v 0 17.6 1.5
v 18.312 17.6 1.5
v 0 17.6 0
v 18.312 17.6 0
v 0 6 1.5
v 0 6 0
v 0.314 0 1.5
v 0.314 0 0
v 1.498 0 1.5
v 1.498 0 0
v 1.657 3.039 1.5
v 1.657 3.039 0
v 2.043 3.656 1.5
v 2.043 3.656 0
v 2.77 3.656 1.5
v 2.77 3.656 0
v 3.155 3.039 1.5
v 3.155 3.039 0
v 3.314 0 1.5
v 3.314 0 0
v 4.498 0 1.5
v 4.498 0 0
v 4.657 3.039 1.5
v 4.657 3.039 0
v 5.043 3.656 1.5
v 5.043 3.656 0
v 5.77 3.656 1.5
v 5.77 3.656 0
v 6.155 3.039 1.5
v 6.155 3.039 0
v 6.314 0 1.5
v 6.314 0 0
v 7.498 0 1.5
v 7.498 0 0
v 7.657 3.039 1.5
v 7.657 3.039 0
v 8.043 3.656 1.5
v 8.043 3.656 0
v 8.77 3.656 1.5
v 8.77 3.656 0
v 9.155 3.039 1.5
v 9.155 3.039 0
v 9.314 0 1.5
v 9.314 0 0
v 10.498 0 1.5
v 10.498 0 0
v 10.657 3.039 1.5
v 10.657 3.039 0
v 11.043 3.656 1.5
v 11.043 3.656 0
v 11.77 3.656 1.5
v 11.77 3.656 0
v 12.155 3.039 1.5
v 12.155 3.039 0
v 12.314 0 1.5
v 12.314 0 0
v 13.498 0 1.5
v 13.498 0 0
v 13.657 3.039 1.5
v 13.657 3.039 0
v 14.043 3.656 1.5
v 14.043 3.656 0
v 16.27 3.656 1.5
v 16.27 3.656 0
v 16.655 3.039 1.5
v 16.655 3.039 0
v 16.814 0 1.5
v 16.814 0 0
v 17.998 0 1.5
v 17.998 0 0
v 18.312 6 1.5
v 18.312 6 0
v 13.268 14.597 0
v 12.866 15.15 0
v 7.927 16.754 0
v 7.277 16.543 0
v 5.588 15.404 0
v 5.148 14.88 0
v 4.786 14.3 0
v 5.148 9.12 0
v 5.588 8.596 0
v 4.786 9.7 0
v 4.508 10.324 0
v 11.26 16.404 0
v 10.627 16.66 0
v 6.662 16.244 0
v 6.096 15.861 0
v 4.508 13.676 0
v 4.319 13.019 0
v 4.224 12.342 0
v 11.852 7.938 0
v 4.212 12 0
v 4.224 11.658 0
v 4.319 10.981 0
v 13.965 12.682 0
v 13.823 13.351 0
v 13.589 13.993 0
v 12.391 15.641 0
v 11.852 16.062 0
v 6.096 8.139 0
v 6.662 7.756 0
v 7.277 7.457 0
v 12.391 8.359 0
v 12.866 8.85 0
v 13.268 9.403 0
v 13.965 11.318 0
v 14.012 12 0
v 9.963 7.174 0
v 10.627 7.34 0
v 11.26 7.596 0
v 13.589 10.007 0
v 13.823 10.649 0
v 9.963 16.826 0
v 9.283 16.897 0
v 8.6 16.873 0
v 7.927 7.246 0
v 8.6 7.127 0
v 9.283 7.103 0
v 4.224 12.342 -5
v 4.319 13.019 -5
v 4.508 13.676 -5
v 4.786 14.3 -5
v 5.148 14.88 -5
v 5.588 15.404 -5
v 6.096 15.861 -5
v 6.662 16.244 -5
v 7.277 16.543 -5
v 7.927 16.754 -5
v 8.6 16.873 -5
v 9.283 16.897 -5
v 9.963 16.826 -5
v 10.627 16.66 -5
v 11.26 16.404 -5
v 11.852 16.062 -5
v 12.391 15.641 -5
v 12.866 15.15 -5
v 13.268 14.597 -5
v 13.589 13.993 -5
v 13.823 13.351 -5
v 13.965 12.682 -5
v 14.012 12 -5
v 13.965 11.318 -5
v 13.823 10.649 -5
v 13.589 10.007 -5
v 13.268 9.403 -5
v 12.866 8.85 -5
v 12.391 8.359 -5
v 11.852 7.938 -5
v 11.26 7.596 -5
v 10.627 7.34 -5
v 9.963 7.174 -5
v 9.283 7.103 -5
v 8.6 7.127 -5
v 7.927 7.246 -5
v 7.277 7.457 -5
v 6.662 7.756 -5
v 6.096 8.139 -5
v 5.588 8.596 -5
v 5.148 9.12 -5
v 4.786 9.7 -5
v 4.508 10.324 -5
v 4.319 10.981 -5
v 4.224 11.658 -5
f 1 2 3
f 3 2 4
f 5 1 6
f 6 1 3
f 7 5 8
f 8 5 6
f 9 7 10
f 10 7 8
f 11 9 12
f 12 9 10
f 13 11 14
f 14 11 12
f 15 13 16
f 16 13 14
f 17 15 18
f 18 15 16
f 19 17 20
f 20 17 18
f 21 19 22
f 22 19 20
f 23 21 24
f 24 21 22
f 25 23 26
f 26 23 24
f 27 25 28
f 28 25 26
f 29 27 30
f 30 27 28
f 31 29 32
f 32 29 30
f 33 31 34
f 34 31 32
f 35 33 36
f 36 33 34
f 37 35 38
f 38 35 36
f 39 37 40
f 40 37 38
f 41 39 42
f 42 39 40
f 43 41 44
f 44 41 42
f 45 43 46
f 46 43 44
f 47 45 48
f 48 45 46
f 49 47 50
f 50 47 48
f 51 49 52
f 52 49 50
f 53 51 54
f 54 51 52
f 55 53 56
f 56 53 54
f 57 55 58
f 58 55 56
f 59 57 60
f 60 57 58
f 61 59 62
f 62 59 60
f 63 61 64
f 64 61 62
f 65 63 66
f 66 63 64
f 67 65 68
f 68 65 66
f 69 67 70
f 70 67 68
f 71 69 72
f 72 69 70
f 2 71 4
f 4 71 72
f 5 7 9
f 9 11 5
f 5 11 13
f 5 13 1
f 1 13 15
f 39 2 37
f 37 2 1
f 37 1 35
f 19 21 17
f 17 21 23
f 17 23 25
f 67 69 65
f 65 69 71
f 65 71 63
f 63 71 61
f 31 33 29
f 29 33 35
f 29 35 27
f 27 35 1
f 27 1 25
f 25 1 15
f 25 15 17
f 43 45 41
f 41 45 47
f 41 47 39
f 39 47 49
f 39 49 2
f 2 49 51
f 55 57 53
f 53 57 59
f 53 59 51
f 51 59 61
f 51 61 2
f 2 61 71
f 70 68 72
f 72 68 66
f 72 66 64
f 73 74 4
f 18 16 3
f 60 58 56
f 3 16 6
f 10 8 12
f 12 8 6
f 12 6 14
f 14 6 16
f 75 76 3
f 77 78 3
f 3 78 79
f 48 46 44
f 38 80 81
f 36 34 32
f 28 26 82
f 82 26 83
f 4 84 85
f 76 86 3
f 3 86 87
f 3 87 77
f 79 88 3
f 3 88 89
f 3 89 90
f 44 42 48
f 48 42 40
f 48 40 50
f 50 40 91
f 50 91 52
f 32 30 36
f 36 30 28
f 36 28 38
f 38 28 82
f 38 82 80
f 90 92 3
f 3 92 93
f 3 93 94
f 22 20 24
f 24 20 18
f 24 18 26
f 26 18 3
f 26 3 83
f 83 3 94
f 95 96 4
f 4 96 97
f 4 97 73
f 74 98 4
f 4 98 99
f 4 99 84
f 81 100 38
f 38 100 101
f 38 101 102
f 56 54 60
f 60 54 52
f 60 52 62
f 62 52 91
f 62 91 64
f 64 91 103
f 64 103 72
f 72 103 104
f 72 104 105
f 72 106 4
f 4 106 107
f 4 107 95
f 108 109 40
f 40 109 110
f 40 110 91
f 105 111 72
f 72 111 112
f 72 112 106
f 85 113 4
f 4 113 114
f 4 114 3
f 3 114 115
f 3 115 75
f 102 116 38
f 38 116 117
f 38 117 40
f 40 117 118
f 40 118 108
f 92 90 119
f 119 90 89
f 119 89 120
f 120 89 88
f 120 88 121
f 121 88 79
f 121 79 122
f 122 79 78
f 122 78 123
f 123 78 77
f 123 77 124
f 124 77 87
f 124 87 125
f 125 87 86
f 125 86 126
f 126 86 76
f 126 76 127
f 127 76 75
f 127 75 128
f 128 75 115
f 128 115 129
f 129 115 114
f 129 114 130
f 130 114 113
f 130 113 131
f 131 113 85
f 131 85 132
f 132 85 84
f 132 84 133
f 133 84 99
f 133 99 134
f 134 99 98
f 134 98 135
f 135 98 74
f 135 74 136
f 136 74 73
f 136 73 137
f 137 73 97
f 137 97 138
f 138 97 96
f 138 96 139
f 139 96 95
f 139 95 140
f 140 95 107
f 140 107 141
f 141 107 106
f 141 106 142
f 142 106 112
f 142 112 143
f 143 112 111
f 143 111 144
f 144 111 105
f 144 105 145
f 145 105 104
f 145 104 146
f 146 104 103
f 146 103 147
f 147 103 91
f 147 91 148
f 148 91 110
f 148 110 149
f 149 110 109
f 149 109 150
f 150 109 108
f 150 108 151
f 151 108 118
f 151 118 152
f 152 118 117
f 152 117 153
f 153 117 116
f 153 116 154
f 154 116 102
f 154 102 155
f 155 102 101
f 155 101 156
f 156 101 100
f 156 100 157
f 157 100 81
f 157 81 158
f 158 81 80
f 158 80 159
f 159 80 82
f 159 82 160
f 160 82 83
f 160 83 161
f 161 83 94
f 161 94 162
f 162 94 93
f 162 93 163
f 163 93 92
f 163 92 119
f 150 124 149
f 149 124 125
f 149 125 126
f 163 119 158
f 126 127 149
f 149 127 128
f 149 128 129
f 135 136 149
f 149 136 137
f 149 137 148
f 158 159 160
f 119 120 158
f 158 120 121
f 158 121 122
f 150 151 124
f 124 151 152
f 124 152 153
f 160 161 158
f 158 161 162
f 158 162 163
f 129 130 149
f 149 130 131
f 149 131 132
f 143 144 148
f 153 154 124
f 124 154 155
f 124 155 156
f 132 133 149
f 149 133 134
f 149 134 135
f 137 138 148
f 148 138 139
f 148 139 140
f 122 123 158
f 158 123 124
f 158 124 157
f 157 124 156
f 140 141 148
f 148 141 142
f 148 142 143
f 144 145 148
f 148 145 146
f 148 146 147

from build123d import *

# Parameters (mm, degrees)
BOSS_EXTRUDE1_DEPTH = 1.5
SKETCH10_R          = 4.9
BOSS_EXTRUDE2_DEPTH = 5


with BuildPart() as part:
    # Sketch1 → Boss-Extrude1 (new body)
    with BuildSketch(Plane.XY):
        Polygon((0, 6), (0.314446676, 0), (1.497941481, 0), (1.657221927, 3.039251967), (2.042586863, 3.65596478), (2.769801294, 3.65596478), (3.155166229, 3.039251967), (3.314446676, 0), (4.497941481, 0), (4.657221927, 3.039251967), (5.042586863, 3.65596478), (5.769801294, 3.65596478), (6.155166229, 3.039251967), (6.314446676, 0), (7.497941481, 0), (7.657221927, 3.039251967), (8.042586863, 3.65596478), (8.769801294, 3.65596478), (9.155166229, 3.039251967), (9.314446676, 0), (10.497941481, 0), (10.657221927, 3.039251967), (11.042586863, 3.65596478), (11.769801294, 3.65596478), (12.155166229, 3.039251967), (12.314446676, 0), (13.497941481, 0), (13.657221927, 3.039251967), (14.042586863, 3.65596478), (16.269801294, 3.65596478), (16.655166229, 3.039251967), (16.814446676, 0), (17.997941481, 0), (18.312388157, 6), (18.312388157, 17.6), (0, 17.6), align=None)
    extrude(amount=BOSS_EXTRUDE1_DEPTH)

    # Sketch10 → Boss-Extrude2 (add)
    with BuildSketch(Plane.XY):
        with Locations((9.112388157, 12)):
            Circle(SKETCH10_R)
    extrude(amount=-BOSS_EXTRUDE2_DEPTH)


solid = part.part
